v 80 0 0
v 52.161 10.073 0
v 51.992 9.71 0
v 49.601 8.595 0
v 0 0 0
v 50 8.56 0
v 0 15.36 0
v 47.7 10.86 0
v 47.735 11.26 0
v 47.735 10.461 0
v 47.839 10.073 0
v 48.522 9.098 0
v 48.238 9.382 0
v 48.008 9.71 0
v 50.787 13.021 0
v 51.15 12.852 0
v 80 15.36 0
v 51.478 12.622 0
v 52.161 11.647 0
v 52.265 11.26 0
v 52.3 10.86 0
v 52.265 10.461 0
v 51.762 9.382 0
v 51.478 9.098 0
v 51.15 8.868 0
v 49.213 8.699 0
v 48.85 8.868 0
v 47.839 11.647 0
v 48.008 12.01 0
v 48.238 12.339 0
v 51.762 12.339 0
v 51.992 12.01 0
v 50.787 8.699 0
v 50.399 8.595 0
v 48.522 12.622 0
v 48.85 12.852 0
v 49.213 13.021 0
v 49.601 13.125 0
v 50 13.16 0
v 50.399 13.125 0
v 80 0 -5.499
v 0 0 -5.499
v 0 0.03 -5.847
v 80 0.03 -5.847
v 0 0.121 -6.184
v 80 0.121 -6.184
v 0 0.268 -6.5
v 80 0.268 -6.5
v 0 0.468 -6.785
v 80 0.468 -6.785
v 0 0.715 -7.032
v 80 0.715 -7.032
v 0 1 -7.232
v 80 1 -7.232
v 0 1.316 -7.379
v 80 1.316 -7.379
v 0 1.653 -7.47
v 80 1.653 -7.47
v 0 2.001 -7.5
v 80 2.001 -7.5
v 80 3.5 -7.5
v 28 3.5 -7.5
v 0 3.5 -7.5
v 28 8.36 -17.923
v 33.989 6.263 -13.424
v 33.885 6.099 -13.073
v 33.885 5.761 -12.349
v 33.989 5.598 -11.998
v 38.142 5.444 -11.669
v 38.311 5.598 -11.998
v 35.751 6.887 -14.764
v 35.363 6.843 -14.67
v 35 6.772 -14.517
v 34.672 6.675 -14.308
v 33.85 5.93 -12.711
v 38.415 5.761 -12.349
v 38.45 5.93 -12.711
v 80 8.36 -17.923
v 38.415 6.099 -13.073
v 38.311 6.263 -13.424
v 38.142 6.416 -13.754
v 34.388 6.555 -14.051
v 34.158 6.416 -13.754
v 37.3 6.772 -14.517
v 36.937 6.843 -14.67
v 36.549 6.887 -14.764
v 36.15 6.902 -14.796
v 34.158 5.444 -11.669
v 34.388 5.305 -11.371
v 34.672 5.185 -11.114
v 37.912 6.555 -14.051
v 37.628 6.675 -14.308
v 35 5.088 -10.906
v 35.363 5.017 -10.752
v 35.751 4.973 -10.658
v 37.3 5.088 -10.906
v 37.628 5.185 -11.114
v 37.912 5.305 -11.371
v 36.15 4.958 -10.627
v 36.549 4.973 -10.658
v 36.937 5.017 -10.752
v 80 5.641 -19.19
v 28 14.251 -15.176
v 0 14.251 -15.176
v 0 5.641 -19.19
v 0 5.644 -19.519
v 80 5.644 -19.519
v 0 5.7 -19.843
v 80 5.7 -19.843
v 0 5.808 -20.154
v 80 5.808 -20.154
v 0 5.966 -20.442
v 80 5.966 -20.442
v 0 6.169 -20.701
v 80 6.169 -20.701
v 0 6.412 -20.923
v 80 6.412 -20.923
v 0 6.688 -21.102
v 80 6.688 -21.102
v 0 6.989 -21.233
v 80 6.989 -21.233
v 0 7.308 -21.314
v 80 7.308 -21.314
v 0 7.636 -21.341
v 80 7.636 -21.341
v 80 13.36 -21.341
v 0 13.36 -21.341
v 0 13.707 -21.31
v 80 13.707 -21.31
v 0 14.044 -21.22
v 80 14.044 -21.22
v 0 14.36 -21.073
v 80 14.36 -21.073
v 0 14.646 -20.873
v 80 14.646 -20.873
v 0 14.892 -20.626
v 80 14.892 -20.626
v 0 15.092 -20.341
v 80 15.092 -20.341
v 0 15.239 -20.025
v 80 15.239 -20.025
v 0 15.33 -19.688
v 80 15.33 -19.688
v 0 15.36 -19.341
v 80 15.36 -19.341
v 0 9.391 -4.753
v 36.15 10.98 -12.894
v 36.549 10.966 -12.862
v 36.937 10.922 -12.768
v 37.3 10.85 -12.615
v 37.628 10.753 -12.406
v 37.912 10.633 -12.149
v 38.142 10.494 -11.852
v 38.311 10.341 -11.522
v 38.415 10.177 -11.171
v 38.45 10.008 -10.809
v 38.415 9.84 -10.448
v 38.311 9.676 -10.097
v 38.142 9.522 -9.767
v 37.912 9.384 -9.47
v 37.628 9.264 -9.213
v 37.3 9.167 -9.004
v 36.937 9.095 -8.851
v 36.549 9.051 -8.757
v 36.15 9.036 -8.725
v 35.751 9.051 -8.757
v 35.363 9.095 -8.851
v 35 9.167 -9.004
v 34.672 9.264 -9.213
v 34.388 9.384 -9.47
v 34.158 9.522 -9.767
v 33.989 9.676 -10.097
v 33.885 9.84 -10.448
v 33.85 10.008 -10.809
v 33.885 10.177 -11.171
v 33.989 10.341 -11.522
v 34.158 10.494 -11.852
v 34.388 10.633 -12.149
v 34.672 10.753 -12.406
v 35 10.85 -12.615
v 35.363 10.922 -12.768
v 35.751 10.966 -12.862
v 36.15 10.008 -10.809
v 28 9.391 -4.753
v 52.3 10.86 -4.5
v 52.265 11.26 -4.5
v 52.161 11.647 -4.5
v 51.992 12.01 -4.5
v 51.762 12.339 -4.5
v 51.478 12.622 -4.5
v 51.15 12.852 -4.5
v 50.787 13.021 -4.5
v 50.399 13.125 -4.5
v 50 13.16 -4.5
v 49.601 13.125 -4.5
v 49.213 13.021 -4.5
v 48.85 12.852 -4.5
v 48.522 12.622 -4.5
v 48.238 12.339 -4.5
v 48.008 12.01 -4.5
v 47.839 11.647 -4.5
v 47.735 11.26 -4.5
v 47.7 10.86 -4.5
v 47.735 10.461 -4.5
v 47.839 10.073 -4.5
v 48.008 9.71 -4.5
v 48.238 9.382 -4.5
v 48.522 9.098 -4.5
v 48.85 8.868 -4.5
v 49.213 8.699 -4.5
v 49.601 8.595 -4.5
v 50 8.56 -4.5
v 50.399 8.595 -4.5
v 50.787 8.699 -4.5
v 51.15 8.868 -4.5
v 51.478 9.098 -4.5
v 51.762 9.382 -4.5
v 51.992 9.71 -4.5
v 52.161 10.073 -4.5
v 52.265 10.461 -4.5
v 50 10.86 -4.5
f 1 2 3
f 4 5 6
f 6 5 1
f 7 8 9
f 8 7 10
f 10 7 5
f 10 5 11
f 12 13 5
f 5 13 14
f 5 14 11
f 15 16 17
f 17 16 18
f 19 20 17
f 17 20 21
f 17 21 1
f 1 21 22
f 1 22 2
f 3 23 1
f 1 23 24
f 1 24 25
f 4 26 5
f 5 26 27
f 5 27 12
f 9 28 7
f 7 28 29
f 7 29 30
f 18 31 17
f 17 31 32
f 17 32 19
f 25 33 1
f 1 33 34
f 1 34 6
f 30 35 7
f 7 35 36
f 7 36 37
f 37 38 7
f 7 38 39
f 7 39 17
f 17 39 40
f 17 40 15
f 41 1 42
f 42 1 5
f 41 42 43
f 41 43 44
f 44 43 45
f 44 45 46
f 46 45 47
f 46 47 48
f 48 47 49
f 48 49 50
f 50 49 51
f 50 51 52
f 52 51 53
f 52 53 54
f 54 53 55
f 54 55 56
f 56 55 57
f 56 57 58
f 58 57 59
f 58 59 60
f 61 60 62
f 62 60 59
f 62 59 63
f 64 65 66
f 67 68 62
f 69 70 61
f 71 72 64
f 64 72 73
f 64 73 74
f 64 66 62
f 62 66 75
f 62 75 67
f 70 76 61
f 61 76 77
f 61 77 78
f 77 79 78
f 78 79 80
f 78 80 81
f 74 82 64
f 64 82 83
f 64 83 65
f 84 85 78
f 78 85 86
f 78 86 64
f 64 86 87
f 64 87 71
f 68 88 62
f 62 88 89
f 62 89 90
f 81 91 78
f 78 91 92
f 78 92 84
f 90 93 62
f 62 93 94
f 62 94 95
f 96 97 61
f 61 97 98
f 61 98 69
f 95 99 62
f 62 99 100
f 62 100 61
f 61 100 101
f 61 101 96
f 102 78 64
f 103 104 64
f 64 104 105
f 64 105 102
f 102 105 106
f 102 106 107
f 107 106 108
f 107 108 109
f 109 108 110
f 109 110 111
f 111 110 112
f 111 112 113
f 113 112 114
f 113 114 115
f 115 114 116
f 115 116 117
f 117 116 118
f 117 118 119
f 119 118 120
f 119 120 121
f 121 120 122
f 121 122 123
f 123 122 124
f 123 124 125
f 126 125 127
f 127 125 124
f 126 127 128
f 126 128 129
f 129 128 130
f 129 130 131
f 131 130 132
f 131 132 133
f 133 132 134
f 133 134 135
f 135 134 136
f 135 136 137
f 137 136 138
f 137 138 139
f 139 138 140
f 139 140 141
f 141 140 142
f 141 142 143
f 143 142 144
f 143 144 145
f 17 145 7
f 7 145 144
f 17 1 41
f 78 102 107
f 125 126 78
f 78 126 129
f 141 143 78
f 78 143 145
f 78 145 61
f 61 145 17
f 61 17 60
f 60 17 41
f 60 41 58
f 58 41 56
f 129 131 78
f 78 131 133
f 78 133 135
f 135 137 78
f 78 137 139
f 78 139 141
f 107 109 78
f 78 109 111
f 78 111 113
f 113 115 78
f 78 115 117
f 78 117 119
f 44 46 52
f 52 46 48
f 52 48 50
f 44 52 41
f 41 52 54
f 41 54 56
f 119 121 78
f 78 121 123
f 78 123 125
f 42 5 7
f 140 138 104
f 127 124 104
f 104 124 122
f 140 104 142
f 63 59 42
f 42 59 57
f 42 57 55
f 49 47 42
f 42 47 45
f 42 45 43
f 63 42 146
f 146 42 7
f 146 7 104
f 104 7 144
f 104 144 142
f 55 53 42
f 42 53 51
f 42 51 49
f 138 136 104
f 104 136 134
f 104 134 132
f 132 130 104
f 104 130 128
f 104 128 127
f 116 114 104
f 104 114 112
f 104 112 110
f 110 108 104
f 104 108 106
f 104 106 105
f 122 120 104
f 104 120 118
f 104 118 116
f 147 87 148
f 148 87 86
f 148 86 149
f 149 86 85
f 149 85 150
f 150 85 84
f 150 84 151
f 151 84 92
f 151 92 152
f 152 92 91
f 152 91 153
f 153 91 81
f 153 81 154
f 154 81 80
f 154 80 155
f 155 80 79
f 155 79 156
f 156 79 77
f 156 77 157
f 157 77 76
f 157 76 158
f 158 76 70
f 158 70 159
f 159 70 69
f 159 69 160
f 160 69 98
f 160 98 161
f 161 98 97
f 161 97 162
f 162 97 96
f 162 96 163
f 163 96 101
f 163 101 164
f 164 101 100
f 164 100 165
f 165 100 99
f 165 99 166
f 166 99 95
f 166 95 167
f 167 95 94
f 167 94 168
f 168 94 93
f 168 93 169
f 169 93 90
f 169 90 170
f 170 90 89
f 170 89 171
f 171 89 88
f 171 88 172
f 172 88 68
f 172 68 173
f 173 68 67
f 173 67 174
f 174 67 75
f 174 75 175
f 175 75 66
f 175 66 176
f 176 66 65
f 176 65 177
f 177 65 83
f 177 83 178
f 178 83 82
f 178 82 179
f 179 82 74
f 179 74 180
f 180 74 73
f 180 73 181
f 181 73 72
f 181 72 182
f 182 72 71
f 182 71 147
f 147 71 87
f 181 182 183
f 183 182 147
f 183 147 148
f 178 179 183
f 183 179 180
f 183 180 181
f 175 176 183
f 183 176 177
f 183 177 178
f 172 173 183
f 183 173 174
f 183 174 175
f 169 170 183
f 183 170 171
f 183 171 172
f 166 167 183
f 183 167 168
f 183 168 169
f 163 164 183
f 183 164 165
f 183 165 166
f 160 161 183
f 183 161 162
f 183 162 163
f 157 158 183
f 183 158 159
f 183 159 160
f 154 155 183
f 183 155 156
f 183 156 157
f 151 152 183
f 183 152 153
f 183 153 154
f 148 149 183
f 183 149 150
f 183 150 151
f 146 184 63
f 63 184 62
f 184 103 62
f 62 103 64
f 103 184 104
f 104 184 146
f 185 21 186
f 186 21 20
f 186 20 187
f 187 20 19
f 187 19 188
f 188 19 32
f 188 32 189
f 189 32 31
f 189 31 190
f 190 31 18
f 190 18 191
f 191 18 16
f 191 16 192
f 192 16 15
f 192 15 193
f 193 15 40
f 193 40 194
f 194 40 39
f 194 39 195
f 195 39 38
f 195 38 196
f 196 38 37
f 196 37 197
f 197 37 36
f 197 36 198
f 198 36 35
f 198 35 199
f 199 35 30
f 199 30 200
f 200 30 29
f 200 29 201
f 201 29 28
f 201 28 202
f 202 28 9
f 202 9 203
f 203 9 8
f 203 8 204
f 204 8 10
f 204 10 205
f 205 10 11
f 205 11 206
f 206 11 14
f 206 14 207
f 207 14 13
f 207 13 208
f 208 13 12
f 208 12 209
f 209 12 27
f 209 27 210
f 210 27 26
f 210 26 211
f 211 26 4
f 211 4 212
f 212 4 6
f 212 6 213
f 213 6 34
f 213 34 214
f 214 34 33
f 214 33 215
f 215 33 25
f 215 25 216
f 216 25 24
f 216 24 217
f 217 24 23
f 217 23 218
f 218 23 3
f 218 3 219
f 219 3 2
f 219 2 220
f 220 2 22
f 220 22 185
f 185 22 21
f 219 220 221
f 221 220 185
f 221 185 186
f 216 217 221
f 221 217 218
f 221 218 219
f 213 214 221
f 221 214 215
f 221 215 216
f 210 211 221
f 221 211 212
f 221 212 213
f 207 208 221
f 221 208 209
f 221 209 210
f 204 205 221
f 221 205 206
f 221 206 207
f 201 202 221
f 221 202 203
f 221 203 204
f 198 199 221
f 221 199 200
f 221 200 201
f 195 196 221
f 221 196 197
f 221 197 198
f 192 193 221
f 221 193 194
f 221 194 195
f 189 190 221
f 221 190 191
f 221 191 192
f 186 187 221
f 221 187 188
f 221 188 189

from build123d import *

# Parameters (mm, degrees)
PROFILEBOSS_EXTRUDE1_DEPTH           = 80
SKETCH2_R                            = 2.3
LEDSTRIPMOUNTHOLESCUT_EXTRUDE1_DEPTH = 4.5
SKETCH4_W                            = 28
SKETCH4_H                            = 11.5
POWERCONNECTORCUT_EXTRUDE4_DEPTH     = 6.5
SKETCH3_R                            = 2.3
MOUNTINGHOLESCUT_EXTRUDE3_DEPTH      = 4.5


with BuildPart() as part:
    # Sketch1 → ProfileBoss-Extrude1 (new body)
    with BuildSketch(Plane(origin=(0, 0, 0), x_dir=(0, 0, -1), z_dir=(1, 0, 0))):
        with BuildLine():
            Line((0, 0), (5.499461553, 0))
            ThreePointArc((5.499461553, 0), (6.914055855, 0.585944145), (7.5, 2.000538447))
            Line((7.5, 2.000538447), (7.5, 3.5))
            Line((7.5, 3.5), (17.922539551, 8.36011001))
            Line((17.922539551, 8.36011001), (19.190394336, 5.641186649))
            ThreePointArc((19.190394336, 5.641186649), (20.700753359, 6.16912635), (21.340729536, 7.635528477))
            Line((21.340729536, 7.635528477), (21.340729536, 13.36011001))
            ThreePointArc((21.340729536, 13.36011001), (20.754943098, 14.774323572), (19.340729536, 15.36011001))
            Line((19.340729536, 15.36011001), (0, 15.36011001))
            Line((0, 15.36011001), (0, 0))
        make_face()
    extrude(amount=PROFILEBOSS_EXTRUDE1_DEPTH)

    # Sketch2 → LedStripMountHolesCut-Extrude1 (cut)
    with BuildSketch(Plane(origin=(0, 0.002211655, 0.001031312), x_dir=(1, 0, 0), z_dir=(0, -0.906307787036651, -0.4226182617406973))):
        with Locations(Location((36.15, -14.026472319, 0), (0, 0, 270))):
            Circle(SKETCH2_R)
    extrude(amount=-LEDSTRIPMOUNTHOLESCUT_EXTRUDE1_DEPTH, mode=Mode.SUBTRACT)

    # Sketch4 → PowerConnectorCut-Extrude4 (cut)
    with BuildSketch(Plane(origin=(0, 0.002211655, 0.001031312), x_dir=(1, 0, 0), z_dir=(0, -0.906307787036651, -0.4226182617406973))):
        with Locations((14, -14.026472319)):
            Rectangle(SKETCH4_W, SKETCH4_H)
    extrude(amount=-POWERCONNECTORCUT_EXTRUDE4_DEPTH, mode=Mode.SUBTRACT)

    # Sketch3 → MountingHolesCut-Extrude3 (cut)
    with BuildSketch(Plane.XY):
        with Locations((50, 10.86011001)):
            Circle(SKETCH3_R)
    extrude(amount=-MOUNTINGHOLESCUT_EXTRUDE3_DEPTH, mode=Mode.SUBTRACT)


solid = part.part
